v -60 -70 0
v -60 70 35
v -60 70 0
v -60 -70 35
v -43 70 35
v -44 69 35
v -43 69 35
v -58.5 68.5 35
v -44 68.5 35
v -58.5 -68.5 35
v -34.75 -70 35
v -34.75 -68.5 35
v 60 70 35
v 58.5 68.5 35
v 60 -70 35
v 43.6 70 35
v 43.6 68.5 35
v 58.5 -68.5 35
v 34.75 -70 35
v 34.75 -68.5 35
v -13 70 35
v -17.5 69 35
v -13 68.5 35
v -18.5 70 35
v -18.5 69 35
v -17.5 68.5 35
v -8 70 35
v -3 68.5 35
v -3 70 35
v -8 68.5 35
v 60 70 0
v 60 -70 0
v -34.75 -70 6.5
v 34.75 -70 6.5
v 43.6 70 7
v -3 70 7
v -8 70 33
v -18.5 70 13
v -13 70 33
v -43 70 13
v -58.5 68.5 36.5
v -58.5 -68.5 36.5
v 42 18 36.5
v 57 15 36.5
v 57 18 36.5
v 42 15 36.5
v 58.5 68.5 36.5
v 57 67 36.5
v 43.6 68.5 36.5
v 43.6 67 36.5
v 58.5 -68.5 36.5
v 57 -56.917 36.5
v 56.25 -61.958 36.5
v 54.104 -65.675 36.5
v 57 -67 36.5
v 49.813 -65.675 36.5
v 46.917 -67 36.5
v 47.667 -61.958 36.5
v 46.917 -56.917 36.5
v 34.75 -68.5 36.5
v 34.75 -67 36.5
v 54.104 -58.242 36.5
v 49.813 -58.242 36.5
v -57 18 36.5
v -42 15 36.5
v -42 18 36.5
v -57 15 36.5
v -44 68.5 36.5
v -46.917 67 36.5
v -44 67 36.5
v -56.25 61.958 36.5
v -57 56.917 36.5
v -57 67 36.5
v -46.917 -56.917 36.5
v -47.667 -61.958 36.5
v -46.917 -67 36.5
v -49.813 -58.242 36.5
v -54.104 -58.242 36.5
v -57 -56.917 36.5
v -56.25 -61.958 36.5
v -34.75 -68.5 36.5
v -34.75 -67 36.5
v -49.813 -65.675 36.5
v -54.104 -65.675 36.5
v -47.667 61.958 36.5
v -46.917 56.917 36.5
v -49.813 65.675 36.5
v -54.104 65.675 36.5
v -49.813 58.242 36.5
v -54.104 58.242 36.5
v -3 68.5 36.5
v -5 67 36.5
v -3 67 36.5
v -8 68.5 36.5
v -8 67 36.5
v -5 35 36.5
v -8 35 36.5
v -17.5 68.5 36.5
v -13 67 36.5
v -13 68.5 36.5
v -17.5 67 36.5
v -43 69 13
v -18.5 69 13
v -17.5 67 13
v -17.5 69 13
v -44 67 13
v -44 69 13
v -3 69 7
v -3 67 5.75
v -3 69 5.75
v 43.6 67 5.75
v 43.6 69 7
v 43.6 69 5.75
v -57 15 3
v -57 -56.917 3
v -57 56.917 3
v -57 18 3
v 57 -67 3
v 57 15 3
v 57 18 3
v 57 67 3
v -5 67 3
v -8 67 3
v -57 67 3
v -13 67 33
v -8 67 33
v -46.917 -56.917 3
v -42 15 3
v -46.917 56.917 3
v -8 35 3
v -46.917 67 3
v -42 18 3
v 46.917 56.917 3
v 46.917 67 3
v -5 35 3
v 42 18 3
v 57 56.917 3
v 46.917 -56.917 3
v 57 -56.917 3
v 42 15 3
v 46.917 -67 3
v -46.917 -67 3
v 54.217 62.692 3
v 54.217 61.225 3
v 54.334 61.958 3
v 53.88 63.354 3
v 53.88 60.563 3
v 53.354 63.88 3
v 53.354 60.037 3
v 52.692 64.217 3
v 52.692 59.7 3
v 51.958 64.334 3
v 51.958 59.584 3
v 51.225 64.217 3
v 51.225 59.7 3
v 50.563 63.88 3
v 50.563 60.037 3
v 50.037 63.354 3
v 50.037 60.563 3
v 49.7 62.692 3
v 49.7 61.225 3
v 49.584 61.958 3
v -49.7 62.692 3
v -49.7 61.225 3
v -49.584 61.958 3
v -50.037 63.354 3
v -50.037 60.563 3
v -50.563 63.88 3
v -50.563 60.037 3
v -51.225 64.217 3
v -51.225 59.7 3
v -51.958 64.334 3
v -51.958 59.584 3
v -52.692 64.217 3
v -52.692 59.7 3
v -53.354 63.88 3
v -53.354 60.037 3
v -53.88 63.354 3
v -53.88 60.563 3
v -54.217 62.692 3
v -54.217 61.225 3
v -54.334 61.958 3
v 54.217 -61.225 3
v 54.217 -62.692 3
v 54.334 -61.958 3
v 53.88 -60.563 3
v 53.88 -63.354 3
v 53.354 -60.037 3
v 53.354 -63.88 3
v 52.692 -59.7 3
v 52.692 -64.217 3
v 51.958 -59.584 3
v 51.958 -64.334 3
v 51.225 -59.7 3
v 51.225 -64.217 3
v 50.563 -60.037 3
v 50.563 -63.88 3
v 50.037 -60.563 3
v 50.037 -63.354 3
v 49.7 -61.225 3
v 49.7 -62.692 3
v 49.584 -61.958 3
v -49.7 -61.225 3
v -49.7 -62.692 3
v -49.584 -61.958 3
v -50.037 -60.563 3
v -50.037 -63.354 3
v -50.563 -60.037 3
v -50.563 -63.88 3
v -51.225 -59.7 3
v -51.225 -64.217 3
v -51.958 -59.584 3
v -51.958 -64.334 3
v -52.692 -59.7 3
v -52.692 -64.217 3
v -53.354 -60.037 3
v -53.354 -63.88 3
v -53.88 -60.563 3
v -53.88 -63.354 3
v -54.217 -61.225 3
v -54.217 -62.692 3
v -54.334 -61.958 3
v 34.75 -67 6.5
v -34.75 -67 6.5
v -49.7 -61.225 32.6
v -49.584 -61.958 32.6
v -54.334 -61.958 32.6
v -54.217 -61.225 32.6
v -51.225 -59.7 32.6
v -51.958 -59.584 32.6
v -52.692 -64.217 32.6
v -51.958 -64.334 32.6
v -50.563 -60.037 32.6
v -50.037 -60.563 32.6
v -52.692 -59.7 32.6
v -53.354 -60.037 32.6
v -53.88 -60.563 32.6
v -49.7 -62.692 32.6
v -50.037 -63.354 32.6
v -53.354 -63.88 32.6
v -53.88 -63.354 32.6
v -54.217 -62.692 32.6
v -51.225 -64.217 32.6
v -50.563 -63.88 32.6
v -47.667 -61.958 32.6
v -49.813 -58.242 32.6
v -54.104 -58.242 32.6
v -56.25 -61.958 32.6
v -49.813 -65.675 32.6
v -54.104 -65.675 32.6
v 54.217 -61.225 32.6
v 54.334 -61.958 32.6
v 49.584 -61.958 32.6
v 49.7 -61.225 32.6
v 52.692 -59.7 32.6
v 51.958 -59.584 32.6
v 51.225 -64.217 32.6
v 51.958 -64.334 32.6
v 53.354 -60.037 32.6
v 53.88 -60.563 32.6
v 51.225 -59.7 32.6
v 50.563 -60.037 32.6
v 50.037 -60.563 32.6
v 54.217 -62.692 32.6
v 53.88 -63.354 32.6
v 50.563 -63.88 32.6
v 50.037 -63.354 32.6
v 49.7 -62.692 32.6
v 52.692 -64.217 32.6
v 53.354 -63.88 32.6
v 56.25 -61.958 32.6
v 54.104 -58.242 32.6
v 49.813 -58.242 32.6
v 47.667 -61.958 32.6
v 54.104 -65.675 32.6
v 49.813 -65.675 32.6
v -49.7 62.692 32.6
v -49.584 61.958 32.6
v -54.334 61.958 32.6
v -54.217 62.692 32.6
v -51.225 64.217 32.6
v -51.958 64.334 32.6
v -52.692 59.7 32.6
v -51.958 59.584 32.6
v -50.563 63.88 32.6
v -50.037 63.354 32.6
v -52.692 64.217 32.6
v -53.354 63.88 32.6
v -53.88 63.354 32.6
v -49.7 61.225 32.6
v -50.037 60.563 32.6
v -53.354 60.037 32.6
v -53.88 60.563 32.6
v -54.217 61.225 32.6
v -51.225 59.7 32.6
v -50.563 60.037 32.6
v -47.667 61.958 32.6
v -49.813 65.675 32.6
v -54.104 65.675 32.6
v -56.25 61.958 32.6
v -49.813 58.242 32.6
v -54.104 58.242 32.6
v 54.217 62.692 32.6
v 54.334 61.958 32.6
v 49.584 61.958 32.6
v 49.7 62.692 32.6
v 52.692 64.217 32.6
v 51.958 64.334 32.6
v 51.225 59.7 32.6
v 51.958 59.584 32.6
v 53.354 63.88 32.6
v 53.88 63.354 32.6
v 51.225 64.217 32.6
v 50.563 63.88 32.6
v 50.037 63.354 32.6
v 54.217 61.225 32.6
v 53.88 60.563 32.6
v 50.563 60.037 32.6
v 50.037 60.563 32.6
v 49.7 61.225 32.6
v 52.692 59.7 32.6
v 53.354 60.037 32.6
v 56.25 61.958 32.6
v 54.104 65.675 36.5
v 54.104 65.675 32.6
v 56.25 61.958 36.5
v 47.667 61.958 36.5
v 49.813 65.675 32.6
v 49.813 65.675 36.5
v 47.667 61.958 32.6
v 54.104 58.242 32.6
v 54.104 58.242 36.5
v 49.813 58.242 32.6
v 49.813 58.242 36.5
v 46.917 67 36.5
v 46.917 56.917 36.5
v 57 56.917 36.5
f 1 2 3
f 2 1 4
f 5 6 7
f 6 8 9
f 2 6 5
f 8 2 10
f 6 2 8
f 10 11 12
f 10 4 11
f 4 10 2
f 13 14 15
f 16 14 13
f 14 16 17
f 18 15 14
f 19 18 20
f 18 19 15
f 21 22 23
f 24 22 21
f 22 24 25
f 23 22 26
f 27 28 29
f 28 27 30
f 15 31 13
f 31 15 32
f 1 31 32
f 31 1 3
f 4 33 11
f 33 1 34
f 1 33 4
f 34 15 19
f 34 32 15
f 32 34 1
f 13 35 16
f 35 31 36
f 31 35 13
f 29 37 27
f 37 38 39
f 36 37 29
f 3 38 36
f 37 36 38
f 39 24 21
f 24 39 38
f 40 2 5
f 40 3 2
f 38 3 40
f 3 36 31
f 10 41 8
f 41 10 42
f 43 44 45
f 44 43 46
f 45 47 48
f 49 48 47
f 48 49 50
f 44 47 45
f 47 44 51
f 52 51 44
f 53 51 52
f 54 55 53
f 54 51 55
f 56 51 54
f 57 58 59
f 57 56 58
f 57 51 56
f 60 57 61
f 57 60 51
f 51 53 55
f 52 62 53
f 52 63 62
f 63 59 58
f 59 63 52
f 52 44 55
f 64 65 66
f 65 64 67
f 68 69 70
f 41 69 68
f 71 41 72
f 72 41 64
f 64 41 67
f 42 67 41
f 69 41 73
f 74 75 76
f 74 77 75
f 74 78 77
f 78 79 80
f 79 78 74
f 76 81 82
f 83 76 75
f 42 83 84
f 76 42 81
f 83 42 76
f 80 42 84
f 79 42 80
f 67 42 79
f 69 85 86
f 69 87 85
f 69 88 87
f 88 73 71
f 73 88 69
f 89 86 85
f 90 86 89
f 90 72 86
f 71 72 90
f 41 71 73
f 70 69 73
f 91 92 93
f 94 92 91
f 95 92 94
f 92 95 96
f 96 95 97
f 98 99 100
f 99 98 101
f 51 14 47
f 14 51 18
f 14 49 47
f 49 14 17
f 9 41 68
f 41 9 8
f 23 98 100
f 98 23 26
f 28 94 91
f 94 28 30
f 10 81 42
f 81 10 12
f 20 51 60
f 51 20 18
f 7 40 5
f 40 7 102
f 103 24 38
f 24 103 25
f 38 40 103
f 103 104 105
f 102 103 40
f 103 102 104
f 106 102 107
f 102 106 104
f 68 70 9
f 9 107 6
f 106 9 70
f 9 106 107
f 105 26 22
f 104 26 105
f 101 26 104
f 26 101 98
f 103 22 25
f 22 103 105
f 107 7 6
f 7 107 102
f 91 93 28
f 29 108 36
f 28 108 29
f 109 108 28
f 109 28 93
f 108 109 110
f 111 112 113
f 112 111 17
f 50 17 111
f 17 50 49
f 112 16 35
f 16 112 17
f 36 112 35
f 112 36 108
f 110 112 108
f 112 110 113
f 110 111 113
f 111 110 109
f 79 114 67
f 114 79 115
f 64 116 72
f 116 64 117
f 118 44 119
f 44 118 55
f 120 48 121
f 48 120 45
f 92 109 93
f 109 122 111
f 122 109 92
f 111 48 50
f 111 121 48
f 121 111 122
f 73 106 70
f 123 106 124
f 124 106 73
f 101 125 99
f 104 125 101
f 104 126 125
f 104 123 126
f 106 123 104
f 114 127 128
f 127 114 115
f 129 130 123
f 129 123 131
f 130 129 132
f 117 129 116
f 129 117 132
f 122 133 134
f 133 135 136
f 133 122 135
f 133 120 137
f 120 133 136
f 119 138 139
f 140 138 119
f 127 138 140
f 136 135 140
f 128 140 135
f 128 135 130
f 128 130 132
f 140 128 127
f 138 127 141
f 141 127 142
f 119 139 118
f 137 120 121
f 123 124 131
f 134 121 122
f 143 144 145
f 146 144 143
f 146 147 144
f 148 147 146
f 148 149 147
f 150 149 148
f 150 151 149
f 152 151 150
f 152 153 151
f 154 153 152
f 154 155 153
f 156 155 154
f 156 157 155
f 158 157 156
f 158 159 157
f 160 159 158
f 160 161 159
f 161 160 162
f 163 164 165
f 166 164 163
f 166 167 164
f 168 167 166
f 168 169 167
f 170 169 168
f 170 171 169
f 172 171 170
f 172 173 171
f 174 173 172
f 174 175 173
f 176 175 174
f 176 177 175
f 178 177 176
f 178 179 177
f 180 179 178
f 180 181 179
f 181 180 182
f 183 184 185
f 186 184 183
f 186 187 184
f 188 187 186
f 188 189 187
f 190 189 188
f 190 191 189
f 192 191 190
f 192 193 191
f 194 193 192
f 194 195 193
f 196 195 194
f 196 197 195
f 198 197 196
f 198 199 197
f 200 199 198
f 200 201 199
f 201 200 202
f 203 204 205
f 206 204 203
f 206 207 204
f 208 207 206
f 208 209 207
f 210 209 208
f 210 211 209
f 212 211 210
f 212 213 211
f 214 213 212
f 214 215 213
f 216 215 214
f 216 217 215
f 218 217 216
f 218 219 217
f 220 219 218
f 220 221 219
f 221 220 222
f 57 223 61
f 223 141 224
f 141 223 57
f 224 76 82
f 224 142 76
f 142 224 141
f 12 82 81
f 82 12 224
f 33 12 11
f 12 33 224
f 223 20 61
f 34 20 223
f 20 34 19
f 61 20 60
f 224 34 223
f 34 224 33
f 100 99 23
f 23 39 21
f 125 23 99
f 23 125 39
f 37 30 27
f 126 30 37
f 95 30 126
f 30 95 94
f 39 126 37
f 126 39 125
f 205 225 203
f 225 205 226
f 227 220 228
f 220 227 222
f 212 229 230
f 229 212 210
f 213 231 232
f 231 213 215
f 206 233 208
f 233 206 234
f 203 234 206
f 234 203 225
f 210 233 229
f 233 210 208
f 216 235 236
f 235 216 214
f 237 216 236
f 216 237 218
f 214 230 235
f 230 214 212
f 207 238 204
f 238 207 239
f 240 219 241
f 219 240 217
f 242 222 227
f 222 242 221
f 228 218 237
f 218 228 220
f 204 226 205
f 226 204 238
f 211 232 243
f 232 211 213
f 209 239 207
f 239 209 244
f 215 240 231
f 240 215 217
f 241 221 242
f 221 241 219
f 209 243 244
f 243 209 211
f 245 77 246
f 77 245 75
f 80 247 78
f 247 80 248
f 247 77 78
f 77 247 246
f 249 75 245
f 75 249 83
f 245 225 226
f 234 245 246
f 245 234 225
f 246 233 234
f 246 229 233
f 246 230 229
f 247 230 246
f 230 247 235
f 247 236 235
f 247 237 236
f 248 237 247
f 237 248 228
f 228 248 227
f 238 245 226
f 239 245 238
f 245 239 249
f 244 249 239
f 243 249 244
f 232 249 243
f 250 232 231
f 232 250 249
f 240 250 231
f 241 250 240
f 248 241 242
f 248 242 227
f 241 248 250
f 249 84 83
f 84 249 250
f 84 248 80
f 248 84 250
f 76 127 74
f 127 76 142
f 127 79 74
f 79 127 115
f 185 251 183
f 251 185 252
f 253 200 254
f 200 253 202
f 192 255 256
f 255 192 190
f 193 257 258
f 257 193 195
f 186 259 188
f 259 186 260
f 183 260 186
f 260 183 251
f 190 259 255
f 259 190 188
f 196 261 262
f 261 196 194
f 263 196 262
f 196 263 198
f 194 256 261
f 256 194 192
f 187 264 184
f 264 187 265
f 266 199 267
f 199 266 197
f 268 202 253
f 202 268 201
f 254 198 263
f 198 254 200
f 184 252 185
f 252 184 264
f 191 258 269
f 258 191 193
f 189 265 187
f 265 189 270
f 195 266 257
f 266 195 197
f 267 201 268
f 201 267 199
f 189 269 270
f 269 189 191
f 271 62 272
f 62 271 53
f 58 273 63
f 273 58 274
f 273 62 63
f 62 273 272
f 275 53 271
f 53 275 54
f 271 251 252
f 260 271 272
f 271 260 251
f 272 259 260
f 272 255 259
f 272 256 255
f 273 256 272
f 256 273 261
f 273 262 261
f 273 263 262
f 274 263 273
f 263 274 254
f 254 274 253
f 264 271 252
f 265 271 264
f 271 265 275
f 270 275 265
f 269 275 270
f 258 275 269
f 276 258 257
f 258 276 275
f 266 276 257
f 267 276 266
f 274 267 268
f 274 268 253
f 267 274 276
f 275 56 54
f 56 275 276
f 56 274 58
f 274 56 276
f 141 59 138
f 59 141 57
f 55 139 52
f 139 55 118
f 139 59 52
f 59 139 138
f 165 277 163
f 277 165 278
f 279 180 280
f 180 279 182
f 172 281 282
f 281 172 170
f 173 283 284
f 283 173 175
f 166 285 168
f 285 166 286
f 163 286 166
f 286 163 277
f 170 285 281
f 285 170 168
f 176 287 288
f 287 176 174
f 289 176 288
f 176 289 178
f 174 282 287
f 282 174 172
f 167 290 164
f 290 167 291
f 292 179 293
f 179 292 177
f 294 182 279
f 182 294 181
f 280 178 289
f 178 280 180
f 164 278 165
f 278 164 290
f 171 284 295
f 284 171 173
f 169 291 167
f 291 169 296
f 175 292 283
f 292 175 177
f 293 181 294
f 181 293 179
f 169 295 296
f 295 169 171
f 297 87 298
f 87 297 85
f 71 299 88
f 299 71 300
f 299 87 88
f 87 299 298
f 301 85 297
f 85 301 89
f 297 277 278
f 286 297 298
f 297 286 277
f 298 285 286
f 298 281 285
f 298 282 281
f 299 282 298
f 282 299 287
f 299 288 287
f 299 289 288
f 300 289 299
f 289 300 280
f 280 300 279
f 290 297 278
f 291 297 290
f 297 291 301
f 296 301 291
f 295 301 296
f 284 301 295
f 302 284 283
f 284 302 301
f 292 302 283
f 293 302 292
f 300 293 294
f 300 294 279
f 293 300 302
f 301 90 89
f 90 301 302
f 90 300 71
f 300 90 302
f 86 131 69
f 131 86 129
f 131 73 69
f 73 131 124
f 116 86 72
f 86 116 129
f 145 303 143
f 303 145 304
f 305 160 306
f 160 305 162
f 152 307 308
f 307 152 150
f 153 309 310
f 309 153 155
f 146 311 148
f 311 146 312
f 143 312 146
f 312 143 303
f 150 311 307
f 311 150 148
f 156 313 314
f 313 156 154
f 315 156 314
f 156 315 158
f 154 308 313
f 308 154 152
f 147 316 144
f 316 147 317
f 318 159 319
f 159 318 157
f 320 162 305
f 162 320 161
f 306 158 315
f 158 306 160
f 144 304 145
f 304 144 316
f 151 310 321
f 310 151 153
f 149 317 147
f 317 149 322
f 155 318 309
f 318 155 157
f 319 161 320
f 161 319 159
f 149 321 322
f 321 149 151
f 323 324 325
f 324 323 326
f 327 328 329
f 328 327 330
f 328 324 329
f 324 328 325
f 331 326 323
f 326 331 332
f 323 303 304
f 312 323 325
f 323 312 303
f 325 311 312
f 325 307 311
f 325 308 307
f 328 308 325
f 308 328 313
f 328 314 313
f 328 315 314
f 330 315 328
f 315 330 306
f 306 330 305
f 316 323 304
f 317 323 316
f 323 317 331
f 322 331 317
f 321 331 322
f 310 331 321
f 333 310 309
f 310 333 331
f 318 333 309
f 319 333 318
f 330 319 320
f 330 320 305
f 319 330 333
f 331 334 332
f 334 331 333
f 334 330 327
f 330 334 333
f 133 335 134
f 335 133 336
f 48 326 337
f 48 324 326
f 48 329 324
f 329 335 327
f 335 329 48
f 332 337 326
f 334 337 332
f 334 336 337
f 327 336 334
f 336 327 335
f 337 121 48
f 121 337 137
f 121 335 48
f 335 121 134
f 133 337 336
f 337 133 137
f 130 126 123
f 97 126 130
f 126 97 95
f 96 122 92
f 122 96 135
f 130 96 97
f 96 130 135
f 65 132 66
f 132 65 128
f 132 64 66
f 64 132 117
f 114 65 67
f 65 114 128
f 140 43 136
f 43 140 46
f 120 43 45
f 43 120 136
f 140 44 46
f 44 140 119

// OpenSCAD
// file: sous_vide_lid.scad
// GLOBALS
// Use this when cutting out to "punch through" faces.
// Clears up rendering artifacts and non-2-manifold errors.
xs = 1;
// Extra space for part interaction.
clr_off = 0.25;

// m3 dimensions
m3_post_sz = 8;
m3_screw_head_h = 2.5;
m3_screw_head_r = 6 / 2;
m3_shaft_r = 3.2 / 2;

// m4 dimensions
m4_post_sz = 9.5;
m4_screw_head_h = 3;
m4_screw_head_r = 9 / 2;
m4_shaft_r = 4.5 / 2;

// Switch screw size here. (So lazy.) 
// TODO: be less lazy.
post_sz = m4_post_sz;
screw_head_h = m4_screw_head_h;
screw_head_r = m4_screw_head_r;
shaft_r = m4_shaft_r;

module screw_hole(x, y, z, h) {
  translate([x, y, z]) {
    // Center over the screw post.
    translate([post_sz/2, post_sz/2, -xs]) {
      cylinder(h, 
               shaft_r + clr_off/2, 
               shaft_r + clr_off/2, $fn=20);
      cylinder(screw_head_h + clr_off, 
               screw_head_r + clr_off/2, 
               shaft_r + clr_off/2, $fn=20);
    }
  }
}

module screw_post(x, y, z, h) {
  translate([x, y, z]) {
    difference() {
      cube([post_sz, post_sz, h]);
      translate([post_sz/2, post_sz/2, -xs]) {
        cylinder(h + 2*xs, 
                 shaft_r + clr_off/2, 
                 shaft_r + clr_off/2, $fn=20);
        // Create a extra space for bolt head to sit flush.
//        translate(0, 0, -xs) {
//          cylinder(.1+xs, 
//                   screw_head_r + .05, 
//                   screw_head_r + .05, $fn=20);
//        }
      }
    }
  }
}

module sous_vide_lid() {
  body_x = 120;
  body_y = 140;
  lid_z = 7;
  wall_thk = 3;
  lip_thk = 1.5;
  // Back lip is 1mm to better line up with power port lips.
  port_lip_thk = 1.0;  
  translate([-(body_x/2), -(body_y/2), 0]) {
    difference() {
      // exterior
      cube([body_x, 
            body_y, 
            lid_z]);
      // cutout interior and builds lip
      translate([lip_thk-clr_off, 
                 lip_thk-clr_off, 
                 wall_thk]) {
        cube([(body_x + 2*clr_off) - 2*(lip_thk), 
              (body_y + 2*clr_off) - (lip_thk+port_lip_thk), 
              lid_z]);
      }
      screw_hole(wall_thk, wall_thk, 0, lid_z);
      screw_hole(body_x-wall_thk-post_sz, 
                 wall_thk, 0, lid_z);
      screw_hole(wall_thk, 
                 body_y-wall_thk-post_sz, 0, lid_z);
      screw_hole(body_x-wall_thk-post_sz, 
                 body_y-wall_thk-post_sz, 0, lid_z);
    } // difference
    post_h = lid_z - wall_thk - lip_thk;
    screw_post(wall_thk, wall_thk, wall_thk, 
               post_h);
    screw_post(body_x-wall_thk-post_sz, 
               wall_thk, 
               wall_thk,
               post_h);
    screw_post(wall_thk, 
               body_y-wall_thk-post_sz, 
               wall_thk, 
               post_h);
    screw_post(body_x-wall_thk-post_sz, 
               body_y-wall_thk-post_sz, 
               wall_thk, 
               post_h);
    // Supporting interior walls
    // back divider
    translate([body_x - 52 - wall_thk, body_y-32-wall_thk, wall_thk]) {
      cube([wall_thk, 32+wall_thk, post_h]);
    }
    // side flanges
    translate([lip_thk-clr_off, 85, wall_thk]) {
      cube([16.5+clr_off, wall_thk, post_h]);
    }
    translate([body_x-wall_thk-15, 85, wall_thk]) {
      cube([16.5+clr_off, wall_thk, post_h]);
    }    
  } // view-port
}
sous_vide_lid();
// file: screw_lib.scad
// A small OpenSCAD library for metric screw dimensions.
// Eg, screw_head_d("m3") == 6.0
//
// Indentation is the result of mixing OpenSCAD language
// with Emacs c-mode.
//
// Author: nurblieh@gmail.com

// Lookup table as a multi-dimensional array. Used in
// concert with the screw_dim_lookup() function. Values
// in millimeters.
// If you add any screws, be sure to follow the field
// ordering.
// If OpenSCAD impelements a hash table (dictionary)
// this (gratefully) will be obsolete.
_screw_dims =
  [
   ["m3", [6.0,  // head diameter
           2.5,  // head height
           3.4,  // shaft diameter
           2.4,  // nut height
           5.5   // nut width
           ]],
   ["m4", [9.0,  // head diameter
           3.0,  // head height
           4.5,  // shaft diameter
           2.9,  // nut height
           7.0   // nut width
           ]],
   ];

// Enum of sorts. Index of field in our lookup table.
_HEAD_D  = 0;
_HEAD_H  = 1;
_SHAFT_D = 2;
_NUT_H   = 3;
_NUT_W   = 4;

// Key lookup on our screw dimension table.
// This could be re-used as a general purpose hash or
// key-value lookup func.
// Args:
//   k: key
//   table: multi-dim array to search through.
//   enum: index of desired screw dimension.
// Returns:
//   value or undef
function _screw_dim_lookup(k, table, enum) =
  (
   let(ret=search([k], _screw_dims))
   len(ret) > 0 ? _screw_dims[ret[0]][1][enum] : undef
   );

// Function to find the size (in mm) of a screw head.
// Args:
//   spec (string): Metric spec name. Eg, "m3".
// Returns:
//   (float)
function screw_head_d(spec) =
  (
   _screw_dim_lookup(spec, _screw_dims, _HEAD_D)
   );

// See above function for docstring.
function screw_head_h(spec) =
  (
   _screw_dim_lookup(spec, _screw_dims, _HEAD_H)
   );

// See above function for docstring.
function screw_shaft_d(spec) =
  (
   _screw_dim_lookup(spec, _screw_dims, _SHAFT_D)
   );

// See above function for docstring.
function screw_nut_h(spec) =
  (
   _screw_dim_lookup(spec, _screw_dims, _NUT_H)
   );

// See above function for docstring.
function screw_nut_w(spec) =
  (
   _screw_dim_lookup(spec, _screw_dims, _NUT_W)
   );

// Size of a cubical post to fit a given screw/nut.
// First find the width of the nut, then using cosine,
// determine the diameter at the _points_ of the nut.
// Add 2 mm for the walls on either side.
function screw_post_sz(spec) =
  (
   let (ret = screw_nut_w(spec))
   ret != undef ? ret / cos(180 / 6) + 2 : undef
   );
// file: sous_vide_globals.scad
// GLOBALS for Sous-Vide Case and Lid

// Use this when cutting out to "punch through" faces.
// Clears up rendering artifacts and non-2-manifold errors.
XS = 1;

// Extra space for part interaction.
OFFSET = 0.25;

// Metric screw spec to use for lid mounting.
SCREW_SPEC = "m4";

// Critical dimensions of case and lid.
BODY_X = 120;
BODY_Y = 140;
BODY_Z = 36.5;
LID_Z = 7;
WALL_THK = 3;
LIP_THK = 1.5;

// 1mm to fit with power port clips.
PORT_LIP_THK = 1.0;
PORT_LIP_DEPTH = 1.0;
// main file
include <sous_vide_globals.scad>;
include <screw_lib.scad>;
use <sous_vide_lid.scad>;

module captive_nut_post(x, y, z, h, spec) {
  post_sz = screw_post_sz(spec);
  nut_h = screw_nut_h(spec);
  nut_w = screw_nut_w(spec);
  shaft_d = screw_shaft_d(spec);
  translate([x, y, z]) {
    difference() {
      cube([post_sz, post_sz, h]);
      translate([post_sz/2, post_sz/2, 0]) {
        // Hole for bolt shaft.
        cylinder(h=(h - 4.5 + XS),
                 d=(shaft_d + OFFSET),
                 $fn=20);
        // captive nut hex hole. 1mm extra height for material.
        translate([0, 0, h-(nut_h+1)]) {
          cylinder(h=(nut_h + 2 + XS),
                   r=(nut_w / 2 / cos(180 / 6) + OFFSET), $fn=6);
        }
      }
    }
  }
}

module sous_vide_case() {
  // Port cut-out dimensions
  stc_1000_dim = [69, 0, 28];  // [x, y, z]
  pwr_out_dim = [24, 0, 22];   // BX-6B American power plug
  probe_dim = [4.5, 0, 2];
  pwr_in_dim = [46.1, 0, 27.5];
  post_sz = screw_post_sz(SCREW_SPEC);

  // Adjust dimensions so port is below lid and "punches" through.
  function port_cutout(dim) = [dim[0] + 2*OFFSET,
                               WALL_THK + 2*XS,
                               dim[2] + 2*OFFSET + LIP_THK + XS];

  // Center the object in view port, along x and y.
  translate([-(BODY_X/2), -(BODY_Y/2), 0]) {
    difference() {
      // Case body
      union() {
        cube([BODY_X, BODY_Y, (BODY_Z - LIP_THK)]);
        // case/lid lip.
        translate([LIP_THK, LIP_THK, LIP_THK]) {
          cube([BODY_X-(2*LIP_THK),
                BODY_Y-(2*LIP_THK),
                BODY_Z-LIP_THK]);
        }
      }

      // Cut-out interior
      translate([WALL_THK, WALL_THK, WALL_THK]) {
        cube([BODY_X - 2*WALL_THK, //114
              BODY_Y - 2*WALL_THK, //156
              BODY_Z]);
      }
      // STC-1000 hole
      translate([(BODY_X-stc_1000_dim[0])/2 - OFFSET,
                 -XS,
                 BODY_Z - (stc_1000_dim[2]+LIP_THK+2*OFFSET)
                 ]) {
        cube(port_cutout(stc_1000_dim));
      }

      // Pwr out hole
      translate([17,
                 BODY_Y-WALL_THK-XS,
                 BODY_Z-(pwr_out_dim[2]+LIP_THK)]) {
        cube(port_cutout(pwr_out_dim));
        // lip for pwr out
        translate([-PORT_LIP_DEPTH, 0, 0]) {
          cube([port_cutout(pwr_out_dim)[0] + 2*PORT_LIP_DEPTH,
                WALL_THK-PORT_LIP_THK+XS,
                port_cutout(pwr_out_dim)[2]]);
        }
      }
      // Probe wire hole
      translate([47,
                 BODY_Y-WALL_THK-XS,
                 BODY_Z-(probe_dim[2]+LIP_THK) ]) {
        cube(port_cutout(probe_dim));
      }
      // Pwr in + switch hole
      translate([57,
                 BODY_Y-WALL_THK-XS,
                 BODY_Z-(pwr_in_dim[2]+LIP_THK+2*OFFSET) ]) {
        cube(port_cutout(pwr_in_dim));
        // 1 mm bottom lip for pwr in+switch.
        translate([0, 0, -(PORT_LIP_DEPTH+OFFSET)]) {
          cube([port_cutout(pwr_in_dim)[0],
                WALL_THK - PORT_LIP_THK + XS,
                PORT_LIP_DEPTH + OFFSET + XS]);
        }
      }
    } // END OF CASE'S DIFFERENCE()
    // Lid mounting posts.
    captive_nut_post(x=WALL_THK,
                     y=WALL_THK,
                     z=WALL_THK,
                     h=BODY_Z - WALL_THK,
                     spec=SCREW_SPEC);
    captive_nut_post(x=BODY_X - WALL_THK - post_sz,
                     y=WALL_THK,
                     z=WALL_THK,
                     h=BODY_Z - WALL_THK,
                     spec=SCREW_SPEC);
    captive_nut_post(x=WALL_THK,
                     y=BODY_Y - WALL_THK - post_sz,
                     z=WALL_THK,
                     h=BODY_Z - WALL_THK,
                     spec=SCREW_SPEC);
    captive_nut_post(x=BODY_X - WALL_THK - post_sz,
                     y=BODY_Y - WALL_THK - post_sz,
                     z=WALL_THK,
                     h=BODY_Z - WALL_THK,
                     spec=SCREW_SPEC);

    // Supporting interior walls
    // back divider
    translate([52, BODY_Y-32-WALL_THK, 3]) {
      cube([3, 32, 33.5]);
    }
    // side flanges
    translate([WALL_THK, 85, WALL_THK]) {
      cube([15, WALL_THK, BODY_Z-WALL_THK]);
    }
    translate([BODY_X-WALL_THK-15, 85, WALL_THK]) {
      cube([15, WALL_THK, BODY_Z-WALL_THK]);
    }
  } // view-port translation.
}
sous_vide_case();

// Display lid above case body.
//translate([0, 0, 45]) {
//  rotate([0, 180, 0]) {
//    sous_vide_lid();
//  }
//}
